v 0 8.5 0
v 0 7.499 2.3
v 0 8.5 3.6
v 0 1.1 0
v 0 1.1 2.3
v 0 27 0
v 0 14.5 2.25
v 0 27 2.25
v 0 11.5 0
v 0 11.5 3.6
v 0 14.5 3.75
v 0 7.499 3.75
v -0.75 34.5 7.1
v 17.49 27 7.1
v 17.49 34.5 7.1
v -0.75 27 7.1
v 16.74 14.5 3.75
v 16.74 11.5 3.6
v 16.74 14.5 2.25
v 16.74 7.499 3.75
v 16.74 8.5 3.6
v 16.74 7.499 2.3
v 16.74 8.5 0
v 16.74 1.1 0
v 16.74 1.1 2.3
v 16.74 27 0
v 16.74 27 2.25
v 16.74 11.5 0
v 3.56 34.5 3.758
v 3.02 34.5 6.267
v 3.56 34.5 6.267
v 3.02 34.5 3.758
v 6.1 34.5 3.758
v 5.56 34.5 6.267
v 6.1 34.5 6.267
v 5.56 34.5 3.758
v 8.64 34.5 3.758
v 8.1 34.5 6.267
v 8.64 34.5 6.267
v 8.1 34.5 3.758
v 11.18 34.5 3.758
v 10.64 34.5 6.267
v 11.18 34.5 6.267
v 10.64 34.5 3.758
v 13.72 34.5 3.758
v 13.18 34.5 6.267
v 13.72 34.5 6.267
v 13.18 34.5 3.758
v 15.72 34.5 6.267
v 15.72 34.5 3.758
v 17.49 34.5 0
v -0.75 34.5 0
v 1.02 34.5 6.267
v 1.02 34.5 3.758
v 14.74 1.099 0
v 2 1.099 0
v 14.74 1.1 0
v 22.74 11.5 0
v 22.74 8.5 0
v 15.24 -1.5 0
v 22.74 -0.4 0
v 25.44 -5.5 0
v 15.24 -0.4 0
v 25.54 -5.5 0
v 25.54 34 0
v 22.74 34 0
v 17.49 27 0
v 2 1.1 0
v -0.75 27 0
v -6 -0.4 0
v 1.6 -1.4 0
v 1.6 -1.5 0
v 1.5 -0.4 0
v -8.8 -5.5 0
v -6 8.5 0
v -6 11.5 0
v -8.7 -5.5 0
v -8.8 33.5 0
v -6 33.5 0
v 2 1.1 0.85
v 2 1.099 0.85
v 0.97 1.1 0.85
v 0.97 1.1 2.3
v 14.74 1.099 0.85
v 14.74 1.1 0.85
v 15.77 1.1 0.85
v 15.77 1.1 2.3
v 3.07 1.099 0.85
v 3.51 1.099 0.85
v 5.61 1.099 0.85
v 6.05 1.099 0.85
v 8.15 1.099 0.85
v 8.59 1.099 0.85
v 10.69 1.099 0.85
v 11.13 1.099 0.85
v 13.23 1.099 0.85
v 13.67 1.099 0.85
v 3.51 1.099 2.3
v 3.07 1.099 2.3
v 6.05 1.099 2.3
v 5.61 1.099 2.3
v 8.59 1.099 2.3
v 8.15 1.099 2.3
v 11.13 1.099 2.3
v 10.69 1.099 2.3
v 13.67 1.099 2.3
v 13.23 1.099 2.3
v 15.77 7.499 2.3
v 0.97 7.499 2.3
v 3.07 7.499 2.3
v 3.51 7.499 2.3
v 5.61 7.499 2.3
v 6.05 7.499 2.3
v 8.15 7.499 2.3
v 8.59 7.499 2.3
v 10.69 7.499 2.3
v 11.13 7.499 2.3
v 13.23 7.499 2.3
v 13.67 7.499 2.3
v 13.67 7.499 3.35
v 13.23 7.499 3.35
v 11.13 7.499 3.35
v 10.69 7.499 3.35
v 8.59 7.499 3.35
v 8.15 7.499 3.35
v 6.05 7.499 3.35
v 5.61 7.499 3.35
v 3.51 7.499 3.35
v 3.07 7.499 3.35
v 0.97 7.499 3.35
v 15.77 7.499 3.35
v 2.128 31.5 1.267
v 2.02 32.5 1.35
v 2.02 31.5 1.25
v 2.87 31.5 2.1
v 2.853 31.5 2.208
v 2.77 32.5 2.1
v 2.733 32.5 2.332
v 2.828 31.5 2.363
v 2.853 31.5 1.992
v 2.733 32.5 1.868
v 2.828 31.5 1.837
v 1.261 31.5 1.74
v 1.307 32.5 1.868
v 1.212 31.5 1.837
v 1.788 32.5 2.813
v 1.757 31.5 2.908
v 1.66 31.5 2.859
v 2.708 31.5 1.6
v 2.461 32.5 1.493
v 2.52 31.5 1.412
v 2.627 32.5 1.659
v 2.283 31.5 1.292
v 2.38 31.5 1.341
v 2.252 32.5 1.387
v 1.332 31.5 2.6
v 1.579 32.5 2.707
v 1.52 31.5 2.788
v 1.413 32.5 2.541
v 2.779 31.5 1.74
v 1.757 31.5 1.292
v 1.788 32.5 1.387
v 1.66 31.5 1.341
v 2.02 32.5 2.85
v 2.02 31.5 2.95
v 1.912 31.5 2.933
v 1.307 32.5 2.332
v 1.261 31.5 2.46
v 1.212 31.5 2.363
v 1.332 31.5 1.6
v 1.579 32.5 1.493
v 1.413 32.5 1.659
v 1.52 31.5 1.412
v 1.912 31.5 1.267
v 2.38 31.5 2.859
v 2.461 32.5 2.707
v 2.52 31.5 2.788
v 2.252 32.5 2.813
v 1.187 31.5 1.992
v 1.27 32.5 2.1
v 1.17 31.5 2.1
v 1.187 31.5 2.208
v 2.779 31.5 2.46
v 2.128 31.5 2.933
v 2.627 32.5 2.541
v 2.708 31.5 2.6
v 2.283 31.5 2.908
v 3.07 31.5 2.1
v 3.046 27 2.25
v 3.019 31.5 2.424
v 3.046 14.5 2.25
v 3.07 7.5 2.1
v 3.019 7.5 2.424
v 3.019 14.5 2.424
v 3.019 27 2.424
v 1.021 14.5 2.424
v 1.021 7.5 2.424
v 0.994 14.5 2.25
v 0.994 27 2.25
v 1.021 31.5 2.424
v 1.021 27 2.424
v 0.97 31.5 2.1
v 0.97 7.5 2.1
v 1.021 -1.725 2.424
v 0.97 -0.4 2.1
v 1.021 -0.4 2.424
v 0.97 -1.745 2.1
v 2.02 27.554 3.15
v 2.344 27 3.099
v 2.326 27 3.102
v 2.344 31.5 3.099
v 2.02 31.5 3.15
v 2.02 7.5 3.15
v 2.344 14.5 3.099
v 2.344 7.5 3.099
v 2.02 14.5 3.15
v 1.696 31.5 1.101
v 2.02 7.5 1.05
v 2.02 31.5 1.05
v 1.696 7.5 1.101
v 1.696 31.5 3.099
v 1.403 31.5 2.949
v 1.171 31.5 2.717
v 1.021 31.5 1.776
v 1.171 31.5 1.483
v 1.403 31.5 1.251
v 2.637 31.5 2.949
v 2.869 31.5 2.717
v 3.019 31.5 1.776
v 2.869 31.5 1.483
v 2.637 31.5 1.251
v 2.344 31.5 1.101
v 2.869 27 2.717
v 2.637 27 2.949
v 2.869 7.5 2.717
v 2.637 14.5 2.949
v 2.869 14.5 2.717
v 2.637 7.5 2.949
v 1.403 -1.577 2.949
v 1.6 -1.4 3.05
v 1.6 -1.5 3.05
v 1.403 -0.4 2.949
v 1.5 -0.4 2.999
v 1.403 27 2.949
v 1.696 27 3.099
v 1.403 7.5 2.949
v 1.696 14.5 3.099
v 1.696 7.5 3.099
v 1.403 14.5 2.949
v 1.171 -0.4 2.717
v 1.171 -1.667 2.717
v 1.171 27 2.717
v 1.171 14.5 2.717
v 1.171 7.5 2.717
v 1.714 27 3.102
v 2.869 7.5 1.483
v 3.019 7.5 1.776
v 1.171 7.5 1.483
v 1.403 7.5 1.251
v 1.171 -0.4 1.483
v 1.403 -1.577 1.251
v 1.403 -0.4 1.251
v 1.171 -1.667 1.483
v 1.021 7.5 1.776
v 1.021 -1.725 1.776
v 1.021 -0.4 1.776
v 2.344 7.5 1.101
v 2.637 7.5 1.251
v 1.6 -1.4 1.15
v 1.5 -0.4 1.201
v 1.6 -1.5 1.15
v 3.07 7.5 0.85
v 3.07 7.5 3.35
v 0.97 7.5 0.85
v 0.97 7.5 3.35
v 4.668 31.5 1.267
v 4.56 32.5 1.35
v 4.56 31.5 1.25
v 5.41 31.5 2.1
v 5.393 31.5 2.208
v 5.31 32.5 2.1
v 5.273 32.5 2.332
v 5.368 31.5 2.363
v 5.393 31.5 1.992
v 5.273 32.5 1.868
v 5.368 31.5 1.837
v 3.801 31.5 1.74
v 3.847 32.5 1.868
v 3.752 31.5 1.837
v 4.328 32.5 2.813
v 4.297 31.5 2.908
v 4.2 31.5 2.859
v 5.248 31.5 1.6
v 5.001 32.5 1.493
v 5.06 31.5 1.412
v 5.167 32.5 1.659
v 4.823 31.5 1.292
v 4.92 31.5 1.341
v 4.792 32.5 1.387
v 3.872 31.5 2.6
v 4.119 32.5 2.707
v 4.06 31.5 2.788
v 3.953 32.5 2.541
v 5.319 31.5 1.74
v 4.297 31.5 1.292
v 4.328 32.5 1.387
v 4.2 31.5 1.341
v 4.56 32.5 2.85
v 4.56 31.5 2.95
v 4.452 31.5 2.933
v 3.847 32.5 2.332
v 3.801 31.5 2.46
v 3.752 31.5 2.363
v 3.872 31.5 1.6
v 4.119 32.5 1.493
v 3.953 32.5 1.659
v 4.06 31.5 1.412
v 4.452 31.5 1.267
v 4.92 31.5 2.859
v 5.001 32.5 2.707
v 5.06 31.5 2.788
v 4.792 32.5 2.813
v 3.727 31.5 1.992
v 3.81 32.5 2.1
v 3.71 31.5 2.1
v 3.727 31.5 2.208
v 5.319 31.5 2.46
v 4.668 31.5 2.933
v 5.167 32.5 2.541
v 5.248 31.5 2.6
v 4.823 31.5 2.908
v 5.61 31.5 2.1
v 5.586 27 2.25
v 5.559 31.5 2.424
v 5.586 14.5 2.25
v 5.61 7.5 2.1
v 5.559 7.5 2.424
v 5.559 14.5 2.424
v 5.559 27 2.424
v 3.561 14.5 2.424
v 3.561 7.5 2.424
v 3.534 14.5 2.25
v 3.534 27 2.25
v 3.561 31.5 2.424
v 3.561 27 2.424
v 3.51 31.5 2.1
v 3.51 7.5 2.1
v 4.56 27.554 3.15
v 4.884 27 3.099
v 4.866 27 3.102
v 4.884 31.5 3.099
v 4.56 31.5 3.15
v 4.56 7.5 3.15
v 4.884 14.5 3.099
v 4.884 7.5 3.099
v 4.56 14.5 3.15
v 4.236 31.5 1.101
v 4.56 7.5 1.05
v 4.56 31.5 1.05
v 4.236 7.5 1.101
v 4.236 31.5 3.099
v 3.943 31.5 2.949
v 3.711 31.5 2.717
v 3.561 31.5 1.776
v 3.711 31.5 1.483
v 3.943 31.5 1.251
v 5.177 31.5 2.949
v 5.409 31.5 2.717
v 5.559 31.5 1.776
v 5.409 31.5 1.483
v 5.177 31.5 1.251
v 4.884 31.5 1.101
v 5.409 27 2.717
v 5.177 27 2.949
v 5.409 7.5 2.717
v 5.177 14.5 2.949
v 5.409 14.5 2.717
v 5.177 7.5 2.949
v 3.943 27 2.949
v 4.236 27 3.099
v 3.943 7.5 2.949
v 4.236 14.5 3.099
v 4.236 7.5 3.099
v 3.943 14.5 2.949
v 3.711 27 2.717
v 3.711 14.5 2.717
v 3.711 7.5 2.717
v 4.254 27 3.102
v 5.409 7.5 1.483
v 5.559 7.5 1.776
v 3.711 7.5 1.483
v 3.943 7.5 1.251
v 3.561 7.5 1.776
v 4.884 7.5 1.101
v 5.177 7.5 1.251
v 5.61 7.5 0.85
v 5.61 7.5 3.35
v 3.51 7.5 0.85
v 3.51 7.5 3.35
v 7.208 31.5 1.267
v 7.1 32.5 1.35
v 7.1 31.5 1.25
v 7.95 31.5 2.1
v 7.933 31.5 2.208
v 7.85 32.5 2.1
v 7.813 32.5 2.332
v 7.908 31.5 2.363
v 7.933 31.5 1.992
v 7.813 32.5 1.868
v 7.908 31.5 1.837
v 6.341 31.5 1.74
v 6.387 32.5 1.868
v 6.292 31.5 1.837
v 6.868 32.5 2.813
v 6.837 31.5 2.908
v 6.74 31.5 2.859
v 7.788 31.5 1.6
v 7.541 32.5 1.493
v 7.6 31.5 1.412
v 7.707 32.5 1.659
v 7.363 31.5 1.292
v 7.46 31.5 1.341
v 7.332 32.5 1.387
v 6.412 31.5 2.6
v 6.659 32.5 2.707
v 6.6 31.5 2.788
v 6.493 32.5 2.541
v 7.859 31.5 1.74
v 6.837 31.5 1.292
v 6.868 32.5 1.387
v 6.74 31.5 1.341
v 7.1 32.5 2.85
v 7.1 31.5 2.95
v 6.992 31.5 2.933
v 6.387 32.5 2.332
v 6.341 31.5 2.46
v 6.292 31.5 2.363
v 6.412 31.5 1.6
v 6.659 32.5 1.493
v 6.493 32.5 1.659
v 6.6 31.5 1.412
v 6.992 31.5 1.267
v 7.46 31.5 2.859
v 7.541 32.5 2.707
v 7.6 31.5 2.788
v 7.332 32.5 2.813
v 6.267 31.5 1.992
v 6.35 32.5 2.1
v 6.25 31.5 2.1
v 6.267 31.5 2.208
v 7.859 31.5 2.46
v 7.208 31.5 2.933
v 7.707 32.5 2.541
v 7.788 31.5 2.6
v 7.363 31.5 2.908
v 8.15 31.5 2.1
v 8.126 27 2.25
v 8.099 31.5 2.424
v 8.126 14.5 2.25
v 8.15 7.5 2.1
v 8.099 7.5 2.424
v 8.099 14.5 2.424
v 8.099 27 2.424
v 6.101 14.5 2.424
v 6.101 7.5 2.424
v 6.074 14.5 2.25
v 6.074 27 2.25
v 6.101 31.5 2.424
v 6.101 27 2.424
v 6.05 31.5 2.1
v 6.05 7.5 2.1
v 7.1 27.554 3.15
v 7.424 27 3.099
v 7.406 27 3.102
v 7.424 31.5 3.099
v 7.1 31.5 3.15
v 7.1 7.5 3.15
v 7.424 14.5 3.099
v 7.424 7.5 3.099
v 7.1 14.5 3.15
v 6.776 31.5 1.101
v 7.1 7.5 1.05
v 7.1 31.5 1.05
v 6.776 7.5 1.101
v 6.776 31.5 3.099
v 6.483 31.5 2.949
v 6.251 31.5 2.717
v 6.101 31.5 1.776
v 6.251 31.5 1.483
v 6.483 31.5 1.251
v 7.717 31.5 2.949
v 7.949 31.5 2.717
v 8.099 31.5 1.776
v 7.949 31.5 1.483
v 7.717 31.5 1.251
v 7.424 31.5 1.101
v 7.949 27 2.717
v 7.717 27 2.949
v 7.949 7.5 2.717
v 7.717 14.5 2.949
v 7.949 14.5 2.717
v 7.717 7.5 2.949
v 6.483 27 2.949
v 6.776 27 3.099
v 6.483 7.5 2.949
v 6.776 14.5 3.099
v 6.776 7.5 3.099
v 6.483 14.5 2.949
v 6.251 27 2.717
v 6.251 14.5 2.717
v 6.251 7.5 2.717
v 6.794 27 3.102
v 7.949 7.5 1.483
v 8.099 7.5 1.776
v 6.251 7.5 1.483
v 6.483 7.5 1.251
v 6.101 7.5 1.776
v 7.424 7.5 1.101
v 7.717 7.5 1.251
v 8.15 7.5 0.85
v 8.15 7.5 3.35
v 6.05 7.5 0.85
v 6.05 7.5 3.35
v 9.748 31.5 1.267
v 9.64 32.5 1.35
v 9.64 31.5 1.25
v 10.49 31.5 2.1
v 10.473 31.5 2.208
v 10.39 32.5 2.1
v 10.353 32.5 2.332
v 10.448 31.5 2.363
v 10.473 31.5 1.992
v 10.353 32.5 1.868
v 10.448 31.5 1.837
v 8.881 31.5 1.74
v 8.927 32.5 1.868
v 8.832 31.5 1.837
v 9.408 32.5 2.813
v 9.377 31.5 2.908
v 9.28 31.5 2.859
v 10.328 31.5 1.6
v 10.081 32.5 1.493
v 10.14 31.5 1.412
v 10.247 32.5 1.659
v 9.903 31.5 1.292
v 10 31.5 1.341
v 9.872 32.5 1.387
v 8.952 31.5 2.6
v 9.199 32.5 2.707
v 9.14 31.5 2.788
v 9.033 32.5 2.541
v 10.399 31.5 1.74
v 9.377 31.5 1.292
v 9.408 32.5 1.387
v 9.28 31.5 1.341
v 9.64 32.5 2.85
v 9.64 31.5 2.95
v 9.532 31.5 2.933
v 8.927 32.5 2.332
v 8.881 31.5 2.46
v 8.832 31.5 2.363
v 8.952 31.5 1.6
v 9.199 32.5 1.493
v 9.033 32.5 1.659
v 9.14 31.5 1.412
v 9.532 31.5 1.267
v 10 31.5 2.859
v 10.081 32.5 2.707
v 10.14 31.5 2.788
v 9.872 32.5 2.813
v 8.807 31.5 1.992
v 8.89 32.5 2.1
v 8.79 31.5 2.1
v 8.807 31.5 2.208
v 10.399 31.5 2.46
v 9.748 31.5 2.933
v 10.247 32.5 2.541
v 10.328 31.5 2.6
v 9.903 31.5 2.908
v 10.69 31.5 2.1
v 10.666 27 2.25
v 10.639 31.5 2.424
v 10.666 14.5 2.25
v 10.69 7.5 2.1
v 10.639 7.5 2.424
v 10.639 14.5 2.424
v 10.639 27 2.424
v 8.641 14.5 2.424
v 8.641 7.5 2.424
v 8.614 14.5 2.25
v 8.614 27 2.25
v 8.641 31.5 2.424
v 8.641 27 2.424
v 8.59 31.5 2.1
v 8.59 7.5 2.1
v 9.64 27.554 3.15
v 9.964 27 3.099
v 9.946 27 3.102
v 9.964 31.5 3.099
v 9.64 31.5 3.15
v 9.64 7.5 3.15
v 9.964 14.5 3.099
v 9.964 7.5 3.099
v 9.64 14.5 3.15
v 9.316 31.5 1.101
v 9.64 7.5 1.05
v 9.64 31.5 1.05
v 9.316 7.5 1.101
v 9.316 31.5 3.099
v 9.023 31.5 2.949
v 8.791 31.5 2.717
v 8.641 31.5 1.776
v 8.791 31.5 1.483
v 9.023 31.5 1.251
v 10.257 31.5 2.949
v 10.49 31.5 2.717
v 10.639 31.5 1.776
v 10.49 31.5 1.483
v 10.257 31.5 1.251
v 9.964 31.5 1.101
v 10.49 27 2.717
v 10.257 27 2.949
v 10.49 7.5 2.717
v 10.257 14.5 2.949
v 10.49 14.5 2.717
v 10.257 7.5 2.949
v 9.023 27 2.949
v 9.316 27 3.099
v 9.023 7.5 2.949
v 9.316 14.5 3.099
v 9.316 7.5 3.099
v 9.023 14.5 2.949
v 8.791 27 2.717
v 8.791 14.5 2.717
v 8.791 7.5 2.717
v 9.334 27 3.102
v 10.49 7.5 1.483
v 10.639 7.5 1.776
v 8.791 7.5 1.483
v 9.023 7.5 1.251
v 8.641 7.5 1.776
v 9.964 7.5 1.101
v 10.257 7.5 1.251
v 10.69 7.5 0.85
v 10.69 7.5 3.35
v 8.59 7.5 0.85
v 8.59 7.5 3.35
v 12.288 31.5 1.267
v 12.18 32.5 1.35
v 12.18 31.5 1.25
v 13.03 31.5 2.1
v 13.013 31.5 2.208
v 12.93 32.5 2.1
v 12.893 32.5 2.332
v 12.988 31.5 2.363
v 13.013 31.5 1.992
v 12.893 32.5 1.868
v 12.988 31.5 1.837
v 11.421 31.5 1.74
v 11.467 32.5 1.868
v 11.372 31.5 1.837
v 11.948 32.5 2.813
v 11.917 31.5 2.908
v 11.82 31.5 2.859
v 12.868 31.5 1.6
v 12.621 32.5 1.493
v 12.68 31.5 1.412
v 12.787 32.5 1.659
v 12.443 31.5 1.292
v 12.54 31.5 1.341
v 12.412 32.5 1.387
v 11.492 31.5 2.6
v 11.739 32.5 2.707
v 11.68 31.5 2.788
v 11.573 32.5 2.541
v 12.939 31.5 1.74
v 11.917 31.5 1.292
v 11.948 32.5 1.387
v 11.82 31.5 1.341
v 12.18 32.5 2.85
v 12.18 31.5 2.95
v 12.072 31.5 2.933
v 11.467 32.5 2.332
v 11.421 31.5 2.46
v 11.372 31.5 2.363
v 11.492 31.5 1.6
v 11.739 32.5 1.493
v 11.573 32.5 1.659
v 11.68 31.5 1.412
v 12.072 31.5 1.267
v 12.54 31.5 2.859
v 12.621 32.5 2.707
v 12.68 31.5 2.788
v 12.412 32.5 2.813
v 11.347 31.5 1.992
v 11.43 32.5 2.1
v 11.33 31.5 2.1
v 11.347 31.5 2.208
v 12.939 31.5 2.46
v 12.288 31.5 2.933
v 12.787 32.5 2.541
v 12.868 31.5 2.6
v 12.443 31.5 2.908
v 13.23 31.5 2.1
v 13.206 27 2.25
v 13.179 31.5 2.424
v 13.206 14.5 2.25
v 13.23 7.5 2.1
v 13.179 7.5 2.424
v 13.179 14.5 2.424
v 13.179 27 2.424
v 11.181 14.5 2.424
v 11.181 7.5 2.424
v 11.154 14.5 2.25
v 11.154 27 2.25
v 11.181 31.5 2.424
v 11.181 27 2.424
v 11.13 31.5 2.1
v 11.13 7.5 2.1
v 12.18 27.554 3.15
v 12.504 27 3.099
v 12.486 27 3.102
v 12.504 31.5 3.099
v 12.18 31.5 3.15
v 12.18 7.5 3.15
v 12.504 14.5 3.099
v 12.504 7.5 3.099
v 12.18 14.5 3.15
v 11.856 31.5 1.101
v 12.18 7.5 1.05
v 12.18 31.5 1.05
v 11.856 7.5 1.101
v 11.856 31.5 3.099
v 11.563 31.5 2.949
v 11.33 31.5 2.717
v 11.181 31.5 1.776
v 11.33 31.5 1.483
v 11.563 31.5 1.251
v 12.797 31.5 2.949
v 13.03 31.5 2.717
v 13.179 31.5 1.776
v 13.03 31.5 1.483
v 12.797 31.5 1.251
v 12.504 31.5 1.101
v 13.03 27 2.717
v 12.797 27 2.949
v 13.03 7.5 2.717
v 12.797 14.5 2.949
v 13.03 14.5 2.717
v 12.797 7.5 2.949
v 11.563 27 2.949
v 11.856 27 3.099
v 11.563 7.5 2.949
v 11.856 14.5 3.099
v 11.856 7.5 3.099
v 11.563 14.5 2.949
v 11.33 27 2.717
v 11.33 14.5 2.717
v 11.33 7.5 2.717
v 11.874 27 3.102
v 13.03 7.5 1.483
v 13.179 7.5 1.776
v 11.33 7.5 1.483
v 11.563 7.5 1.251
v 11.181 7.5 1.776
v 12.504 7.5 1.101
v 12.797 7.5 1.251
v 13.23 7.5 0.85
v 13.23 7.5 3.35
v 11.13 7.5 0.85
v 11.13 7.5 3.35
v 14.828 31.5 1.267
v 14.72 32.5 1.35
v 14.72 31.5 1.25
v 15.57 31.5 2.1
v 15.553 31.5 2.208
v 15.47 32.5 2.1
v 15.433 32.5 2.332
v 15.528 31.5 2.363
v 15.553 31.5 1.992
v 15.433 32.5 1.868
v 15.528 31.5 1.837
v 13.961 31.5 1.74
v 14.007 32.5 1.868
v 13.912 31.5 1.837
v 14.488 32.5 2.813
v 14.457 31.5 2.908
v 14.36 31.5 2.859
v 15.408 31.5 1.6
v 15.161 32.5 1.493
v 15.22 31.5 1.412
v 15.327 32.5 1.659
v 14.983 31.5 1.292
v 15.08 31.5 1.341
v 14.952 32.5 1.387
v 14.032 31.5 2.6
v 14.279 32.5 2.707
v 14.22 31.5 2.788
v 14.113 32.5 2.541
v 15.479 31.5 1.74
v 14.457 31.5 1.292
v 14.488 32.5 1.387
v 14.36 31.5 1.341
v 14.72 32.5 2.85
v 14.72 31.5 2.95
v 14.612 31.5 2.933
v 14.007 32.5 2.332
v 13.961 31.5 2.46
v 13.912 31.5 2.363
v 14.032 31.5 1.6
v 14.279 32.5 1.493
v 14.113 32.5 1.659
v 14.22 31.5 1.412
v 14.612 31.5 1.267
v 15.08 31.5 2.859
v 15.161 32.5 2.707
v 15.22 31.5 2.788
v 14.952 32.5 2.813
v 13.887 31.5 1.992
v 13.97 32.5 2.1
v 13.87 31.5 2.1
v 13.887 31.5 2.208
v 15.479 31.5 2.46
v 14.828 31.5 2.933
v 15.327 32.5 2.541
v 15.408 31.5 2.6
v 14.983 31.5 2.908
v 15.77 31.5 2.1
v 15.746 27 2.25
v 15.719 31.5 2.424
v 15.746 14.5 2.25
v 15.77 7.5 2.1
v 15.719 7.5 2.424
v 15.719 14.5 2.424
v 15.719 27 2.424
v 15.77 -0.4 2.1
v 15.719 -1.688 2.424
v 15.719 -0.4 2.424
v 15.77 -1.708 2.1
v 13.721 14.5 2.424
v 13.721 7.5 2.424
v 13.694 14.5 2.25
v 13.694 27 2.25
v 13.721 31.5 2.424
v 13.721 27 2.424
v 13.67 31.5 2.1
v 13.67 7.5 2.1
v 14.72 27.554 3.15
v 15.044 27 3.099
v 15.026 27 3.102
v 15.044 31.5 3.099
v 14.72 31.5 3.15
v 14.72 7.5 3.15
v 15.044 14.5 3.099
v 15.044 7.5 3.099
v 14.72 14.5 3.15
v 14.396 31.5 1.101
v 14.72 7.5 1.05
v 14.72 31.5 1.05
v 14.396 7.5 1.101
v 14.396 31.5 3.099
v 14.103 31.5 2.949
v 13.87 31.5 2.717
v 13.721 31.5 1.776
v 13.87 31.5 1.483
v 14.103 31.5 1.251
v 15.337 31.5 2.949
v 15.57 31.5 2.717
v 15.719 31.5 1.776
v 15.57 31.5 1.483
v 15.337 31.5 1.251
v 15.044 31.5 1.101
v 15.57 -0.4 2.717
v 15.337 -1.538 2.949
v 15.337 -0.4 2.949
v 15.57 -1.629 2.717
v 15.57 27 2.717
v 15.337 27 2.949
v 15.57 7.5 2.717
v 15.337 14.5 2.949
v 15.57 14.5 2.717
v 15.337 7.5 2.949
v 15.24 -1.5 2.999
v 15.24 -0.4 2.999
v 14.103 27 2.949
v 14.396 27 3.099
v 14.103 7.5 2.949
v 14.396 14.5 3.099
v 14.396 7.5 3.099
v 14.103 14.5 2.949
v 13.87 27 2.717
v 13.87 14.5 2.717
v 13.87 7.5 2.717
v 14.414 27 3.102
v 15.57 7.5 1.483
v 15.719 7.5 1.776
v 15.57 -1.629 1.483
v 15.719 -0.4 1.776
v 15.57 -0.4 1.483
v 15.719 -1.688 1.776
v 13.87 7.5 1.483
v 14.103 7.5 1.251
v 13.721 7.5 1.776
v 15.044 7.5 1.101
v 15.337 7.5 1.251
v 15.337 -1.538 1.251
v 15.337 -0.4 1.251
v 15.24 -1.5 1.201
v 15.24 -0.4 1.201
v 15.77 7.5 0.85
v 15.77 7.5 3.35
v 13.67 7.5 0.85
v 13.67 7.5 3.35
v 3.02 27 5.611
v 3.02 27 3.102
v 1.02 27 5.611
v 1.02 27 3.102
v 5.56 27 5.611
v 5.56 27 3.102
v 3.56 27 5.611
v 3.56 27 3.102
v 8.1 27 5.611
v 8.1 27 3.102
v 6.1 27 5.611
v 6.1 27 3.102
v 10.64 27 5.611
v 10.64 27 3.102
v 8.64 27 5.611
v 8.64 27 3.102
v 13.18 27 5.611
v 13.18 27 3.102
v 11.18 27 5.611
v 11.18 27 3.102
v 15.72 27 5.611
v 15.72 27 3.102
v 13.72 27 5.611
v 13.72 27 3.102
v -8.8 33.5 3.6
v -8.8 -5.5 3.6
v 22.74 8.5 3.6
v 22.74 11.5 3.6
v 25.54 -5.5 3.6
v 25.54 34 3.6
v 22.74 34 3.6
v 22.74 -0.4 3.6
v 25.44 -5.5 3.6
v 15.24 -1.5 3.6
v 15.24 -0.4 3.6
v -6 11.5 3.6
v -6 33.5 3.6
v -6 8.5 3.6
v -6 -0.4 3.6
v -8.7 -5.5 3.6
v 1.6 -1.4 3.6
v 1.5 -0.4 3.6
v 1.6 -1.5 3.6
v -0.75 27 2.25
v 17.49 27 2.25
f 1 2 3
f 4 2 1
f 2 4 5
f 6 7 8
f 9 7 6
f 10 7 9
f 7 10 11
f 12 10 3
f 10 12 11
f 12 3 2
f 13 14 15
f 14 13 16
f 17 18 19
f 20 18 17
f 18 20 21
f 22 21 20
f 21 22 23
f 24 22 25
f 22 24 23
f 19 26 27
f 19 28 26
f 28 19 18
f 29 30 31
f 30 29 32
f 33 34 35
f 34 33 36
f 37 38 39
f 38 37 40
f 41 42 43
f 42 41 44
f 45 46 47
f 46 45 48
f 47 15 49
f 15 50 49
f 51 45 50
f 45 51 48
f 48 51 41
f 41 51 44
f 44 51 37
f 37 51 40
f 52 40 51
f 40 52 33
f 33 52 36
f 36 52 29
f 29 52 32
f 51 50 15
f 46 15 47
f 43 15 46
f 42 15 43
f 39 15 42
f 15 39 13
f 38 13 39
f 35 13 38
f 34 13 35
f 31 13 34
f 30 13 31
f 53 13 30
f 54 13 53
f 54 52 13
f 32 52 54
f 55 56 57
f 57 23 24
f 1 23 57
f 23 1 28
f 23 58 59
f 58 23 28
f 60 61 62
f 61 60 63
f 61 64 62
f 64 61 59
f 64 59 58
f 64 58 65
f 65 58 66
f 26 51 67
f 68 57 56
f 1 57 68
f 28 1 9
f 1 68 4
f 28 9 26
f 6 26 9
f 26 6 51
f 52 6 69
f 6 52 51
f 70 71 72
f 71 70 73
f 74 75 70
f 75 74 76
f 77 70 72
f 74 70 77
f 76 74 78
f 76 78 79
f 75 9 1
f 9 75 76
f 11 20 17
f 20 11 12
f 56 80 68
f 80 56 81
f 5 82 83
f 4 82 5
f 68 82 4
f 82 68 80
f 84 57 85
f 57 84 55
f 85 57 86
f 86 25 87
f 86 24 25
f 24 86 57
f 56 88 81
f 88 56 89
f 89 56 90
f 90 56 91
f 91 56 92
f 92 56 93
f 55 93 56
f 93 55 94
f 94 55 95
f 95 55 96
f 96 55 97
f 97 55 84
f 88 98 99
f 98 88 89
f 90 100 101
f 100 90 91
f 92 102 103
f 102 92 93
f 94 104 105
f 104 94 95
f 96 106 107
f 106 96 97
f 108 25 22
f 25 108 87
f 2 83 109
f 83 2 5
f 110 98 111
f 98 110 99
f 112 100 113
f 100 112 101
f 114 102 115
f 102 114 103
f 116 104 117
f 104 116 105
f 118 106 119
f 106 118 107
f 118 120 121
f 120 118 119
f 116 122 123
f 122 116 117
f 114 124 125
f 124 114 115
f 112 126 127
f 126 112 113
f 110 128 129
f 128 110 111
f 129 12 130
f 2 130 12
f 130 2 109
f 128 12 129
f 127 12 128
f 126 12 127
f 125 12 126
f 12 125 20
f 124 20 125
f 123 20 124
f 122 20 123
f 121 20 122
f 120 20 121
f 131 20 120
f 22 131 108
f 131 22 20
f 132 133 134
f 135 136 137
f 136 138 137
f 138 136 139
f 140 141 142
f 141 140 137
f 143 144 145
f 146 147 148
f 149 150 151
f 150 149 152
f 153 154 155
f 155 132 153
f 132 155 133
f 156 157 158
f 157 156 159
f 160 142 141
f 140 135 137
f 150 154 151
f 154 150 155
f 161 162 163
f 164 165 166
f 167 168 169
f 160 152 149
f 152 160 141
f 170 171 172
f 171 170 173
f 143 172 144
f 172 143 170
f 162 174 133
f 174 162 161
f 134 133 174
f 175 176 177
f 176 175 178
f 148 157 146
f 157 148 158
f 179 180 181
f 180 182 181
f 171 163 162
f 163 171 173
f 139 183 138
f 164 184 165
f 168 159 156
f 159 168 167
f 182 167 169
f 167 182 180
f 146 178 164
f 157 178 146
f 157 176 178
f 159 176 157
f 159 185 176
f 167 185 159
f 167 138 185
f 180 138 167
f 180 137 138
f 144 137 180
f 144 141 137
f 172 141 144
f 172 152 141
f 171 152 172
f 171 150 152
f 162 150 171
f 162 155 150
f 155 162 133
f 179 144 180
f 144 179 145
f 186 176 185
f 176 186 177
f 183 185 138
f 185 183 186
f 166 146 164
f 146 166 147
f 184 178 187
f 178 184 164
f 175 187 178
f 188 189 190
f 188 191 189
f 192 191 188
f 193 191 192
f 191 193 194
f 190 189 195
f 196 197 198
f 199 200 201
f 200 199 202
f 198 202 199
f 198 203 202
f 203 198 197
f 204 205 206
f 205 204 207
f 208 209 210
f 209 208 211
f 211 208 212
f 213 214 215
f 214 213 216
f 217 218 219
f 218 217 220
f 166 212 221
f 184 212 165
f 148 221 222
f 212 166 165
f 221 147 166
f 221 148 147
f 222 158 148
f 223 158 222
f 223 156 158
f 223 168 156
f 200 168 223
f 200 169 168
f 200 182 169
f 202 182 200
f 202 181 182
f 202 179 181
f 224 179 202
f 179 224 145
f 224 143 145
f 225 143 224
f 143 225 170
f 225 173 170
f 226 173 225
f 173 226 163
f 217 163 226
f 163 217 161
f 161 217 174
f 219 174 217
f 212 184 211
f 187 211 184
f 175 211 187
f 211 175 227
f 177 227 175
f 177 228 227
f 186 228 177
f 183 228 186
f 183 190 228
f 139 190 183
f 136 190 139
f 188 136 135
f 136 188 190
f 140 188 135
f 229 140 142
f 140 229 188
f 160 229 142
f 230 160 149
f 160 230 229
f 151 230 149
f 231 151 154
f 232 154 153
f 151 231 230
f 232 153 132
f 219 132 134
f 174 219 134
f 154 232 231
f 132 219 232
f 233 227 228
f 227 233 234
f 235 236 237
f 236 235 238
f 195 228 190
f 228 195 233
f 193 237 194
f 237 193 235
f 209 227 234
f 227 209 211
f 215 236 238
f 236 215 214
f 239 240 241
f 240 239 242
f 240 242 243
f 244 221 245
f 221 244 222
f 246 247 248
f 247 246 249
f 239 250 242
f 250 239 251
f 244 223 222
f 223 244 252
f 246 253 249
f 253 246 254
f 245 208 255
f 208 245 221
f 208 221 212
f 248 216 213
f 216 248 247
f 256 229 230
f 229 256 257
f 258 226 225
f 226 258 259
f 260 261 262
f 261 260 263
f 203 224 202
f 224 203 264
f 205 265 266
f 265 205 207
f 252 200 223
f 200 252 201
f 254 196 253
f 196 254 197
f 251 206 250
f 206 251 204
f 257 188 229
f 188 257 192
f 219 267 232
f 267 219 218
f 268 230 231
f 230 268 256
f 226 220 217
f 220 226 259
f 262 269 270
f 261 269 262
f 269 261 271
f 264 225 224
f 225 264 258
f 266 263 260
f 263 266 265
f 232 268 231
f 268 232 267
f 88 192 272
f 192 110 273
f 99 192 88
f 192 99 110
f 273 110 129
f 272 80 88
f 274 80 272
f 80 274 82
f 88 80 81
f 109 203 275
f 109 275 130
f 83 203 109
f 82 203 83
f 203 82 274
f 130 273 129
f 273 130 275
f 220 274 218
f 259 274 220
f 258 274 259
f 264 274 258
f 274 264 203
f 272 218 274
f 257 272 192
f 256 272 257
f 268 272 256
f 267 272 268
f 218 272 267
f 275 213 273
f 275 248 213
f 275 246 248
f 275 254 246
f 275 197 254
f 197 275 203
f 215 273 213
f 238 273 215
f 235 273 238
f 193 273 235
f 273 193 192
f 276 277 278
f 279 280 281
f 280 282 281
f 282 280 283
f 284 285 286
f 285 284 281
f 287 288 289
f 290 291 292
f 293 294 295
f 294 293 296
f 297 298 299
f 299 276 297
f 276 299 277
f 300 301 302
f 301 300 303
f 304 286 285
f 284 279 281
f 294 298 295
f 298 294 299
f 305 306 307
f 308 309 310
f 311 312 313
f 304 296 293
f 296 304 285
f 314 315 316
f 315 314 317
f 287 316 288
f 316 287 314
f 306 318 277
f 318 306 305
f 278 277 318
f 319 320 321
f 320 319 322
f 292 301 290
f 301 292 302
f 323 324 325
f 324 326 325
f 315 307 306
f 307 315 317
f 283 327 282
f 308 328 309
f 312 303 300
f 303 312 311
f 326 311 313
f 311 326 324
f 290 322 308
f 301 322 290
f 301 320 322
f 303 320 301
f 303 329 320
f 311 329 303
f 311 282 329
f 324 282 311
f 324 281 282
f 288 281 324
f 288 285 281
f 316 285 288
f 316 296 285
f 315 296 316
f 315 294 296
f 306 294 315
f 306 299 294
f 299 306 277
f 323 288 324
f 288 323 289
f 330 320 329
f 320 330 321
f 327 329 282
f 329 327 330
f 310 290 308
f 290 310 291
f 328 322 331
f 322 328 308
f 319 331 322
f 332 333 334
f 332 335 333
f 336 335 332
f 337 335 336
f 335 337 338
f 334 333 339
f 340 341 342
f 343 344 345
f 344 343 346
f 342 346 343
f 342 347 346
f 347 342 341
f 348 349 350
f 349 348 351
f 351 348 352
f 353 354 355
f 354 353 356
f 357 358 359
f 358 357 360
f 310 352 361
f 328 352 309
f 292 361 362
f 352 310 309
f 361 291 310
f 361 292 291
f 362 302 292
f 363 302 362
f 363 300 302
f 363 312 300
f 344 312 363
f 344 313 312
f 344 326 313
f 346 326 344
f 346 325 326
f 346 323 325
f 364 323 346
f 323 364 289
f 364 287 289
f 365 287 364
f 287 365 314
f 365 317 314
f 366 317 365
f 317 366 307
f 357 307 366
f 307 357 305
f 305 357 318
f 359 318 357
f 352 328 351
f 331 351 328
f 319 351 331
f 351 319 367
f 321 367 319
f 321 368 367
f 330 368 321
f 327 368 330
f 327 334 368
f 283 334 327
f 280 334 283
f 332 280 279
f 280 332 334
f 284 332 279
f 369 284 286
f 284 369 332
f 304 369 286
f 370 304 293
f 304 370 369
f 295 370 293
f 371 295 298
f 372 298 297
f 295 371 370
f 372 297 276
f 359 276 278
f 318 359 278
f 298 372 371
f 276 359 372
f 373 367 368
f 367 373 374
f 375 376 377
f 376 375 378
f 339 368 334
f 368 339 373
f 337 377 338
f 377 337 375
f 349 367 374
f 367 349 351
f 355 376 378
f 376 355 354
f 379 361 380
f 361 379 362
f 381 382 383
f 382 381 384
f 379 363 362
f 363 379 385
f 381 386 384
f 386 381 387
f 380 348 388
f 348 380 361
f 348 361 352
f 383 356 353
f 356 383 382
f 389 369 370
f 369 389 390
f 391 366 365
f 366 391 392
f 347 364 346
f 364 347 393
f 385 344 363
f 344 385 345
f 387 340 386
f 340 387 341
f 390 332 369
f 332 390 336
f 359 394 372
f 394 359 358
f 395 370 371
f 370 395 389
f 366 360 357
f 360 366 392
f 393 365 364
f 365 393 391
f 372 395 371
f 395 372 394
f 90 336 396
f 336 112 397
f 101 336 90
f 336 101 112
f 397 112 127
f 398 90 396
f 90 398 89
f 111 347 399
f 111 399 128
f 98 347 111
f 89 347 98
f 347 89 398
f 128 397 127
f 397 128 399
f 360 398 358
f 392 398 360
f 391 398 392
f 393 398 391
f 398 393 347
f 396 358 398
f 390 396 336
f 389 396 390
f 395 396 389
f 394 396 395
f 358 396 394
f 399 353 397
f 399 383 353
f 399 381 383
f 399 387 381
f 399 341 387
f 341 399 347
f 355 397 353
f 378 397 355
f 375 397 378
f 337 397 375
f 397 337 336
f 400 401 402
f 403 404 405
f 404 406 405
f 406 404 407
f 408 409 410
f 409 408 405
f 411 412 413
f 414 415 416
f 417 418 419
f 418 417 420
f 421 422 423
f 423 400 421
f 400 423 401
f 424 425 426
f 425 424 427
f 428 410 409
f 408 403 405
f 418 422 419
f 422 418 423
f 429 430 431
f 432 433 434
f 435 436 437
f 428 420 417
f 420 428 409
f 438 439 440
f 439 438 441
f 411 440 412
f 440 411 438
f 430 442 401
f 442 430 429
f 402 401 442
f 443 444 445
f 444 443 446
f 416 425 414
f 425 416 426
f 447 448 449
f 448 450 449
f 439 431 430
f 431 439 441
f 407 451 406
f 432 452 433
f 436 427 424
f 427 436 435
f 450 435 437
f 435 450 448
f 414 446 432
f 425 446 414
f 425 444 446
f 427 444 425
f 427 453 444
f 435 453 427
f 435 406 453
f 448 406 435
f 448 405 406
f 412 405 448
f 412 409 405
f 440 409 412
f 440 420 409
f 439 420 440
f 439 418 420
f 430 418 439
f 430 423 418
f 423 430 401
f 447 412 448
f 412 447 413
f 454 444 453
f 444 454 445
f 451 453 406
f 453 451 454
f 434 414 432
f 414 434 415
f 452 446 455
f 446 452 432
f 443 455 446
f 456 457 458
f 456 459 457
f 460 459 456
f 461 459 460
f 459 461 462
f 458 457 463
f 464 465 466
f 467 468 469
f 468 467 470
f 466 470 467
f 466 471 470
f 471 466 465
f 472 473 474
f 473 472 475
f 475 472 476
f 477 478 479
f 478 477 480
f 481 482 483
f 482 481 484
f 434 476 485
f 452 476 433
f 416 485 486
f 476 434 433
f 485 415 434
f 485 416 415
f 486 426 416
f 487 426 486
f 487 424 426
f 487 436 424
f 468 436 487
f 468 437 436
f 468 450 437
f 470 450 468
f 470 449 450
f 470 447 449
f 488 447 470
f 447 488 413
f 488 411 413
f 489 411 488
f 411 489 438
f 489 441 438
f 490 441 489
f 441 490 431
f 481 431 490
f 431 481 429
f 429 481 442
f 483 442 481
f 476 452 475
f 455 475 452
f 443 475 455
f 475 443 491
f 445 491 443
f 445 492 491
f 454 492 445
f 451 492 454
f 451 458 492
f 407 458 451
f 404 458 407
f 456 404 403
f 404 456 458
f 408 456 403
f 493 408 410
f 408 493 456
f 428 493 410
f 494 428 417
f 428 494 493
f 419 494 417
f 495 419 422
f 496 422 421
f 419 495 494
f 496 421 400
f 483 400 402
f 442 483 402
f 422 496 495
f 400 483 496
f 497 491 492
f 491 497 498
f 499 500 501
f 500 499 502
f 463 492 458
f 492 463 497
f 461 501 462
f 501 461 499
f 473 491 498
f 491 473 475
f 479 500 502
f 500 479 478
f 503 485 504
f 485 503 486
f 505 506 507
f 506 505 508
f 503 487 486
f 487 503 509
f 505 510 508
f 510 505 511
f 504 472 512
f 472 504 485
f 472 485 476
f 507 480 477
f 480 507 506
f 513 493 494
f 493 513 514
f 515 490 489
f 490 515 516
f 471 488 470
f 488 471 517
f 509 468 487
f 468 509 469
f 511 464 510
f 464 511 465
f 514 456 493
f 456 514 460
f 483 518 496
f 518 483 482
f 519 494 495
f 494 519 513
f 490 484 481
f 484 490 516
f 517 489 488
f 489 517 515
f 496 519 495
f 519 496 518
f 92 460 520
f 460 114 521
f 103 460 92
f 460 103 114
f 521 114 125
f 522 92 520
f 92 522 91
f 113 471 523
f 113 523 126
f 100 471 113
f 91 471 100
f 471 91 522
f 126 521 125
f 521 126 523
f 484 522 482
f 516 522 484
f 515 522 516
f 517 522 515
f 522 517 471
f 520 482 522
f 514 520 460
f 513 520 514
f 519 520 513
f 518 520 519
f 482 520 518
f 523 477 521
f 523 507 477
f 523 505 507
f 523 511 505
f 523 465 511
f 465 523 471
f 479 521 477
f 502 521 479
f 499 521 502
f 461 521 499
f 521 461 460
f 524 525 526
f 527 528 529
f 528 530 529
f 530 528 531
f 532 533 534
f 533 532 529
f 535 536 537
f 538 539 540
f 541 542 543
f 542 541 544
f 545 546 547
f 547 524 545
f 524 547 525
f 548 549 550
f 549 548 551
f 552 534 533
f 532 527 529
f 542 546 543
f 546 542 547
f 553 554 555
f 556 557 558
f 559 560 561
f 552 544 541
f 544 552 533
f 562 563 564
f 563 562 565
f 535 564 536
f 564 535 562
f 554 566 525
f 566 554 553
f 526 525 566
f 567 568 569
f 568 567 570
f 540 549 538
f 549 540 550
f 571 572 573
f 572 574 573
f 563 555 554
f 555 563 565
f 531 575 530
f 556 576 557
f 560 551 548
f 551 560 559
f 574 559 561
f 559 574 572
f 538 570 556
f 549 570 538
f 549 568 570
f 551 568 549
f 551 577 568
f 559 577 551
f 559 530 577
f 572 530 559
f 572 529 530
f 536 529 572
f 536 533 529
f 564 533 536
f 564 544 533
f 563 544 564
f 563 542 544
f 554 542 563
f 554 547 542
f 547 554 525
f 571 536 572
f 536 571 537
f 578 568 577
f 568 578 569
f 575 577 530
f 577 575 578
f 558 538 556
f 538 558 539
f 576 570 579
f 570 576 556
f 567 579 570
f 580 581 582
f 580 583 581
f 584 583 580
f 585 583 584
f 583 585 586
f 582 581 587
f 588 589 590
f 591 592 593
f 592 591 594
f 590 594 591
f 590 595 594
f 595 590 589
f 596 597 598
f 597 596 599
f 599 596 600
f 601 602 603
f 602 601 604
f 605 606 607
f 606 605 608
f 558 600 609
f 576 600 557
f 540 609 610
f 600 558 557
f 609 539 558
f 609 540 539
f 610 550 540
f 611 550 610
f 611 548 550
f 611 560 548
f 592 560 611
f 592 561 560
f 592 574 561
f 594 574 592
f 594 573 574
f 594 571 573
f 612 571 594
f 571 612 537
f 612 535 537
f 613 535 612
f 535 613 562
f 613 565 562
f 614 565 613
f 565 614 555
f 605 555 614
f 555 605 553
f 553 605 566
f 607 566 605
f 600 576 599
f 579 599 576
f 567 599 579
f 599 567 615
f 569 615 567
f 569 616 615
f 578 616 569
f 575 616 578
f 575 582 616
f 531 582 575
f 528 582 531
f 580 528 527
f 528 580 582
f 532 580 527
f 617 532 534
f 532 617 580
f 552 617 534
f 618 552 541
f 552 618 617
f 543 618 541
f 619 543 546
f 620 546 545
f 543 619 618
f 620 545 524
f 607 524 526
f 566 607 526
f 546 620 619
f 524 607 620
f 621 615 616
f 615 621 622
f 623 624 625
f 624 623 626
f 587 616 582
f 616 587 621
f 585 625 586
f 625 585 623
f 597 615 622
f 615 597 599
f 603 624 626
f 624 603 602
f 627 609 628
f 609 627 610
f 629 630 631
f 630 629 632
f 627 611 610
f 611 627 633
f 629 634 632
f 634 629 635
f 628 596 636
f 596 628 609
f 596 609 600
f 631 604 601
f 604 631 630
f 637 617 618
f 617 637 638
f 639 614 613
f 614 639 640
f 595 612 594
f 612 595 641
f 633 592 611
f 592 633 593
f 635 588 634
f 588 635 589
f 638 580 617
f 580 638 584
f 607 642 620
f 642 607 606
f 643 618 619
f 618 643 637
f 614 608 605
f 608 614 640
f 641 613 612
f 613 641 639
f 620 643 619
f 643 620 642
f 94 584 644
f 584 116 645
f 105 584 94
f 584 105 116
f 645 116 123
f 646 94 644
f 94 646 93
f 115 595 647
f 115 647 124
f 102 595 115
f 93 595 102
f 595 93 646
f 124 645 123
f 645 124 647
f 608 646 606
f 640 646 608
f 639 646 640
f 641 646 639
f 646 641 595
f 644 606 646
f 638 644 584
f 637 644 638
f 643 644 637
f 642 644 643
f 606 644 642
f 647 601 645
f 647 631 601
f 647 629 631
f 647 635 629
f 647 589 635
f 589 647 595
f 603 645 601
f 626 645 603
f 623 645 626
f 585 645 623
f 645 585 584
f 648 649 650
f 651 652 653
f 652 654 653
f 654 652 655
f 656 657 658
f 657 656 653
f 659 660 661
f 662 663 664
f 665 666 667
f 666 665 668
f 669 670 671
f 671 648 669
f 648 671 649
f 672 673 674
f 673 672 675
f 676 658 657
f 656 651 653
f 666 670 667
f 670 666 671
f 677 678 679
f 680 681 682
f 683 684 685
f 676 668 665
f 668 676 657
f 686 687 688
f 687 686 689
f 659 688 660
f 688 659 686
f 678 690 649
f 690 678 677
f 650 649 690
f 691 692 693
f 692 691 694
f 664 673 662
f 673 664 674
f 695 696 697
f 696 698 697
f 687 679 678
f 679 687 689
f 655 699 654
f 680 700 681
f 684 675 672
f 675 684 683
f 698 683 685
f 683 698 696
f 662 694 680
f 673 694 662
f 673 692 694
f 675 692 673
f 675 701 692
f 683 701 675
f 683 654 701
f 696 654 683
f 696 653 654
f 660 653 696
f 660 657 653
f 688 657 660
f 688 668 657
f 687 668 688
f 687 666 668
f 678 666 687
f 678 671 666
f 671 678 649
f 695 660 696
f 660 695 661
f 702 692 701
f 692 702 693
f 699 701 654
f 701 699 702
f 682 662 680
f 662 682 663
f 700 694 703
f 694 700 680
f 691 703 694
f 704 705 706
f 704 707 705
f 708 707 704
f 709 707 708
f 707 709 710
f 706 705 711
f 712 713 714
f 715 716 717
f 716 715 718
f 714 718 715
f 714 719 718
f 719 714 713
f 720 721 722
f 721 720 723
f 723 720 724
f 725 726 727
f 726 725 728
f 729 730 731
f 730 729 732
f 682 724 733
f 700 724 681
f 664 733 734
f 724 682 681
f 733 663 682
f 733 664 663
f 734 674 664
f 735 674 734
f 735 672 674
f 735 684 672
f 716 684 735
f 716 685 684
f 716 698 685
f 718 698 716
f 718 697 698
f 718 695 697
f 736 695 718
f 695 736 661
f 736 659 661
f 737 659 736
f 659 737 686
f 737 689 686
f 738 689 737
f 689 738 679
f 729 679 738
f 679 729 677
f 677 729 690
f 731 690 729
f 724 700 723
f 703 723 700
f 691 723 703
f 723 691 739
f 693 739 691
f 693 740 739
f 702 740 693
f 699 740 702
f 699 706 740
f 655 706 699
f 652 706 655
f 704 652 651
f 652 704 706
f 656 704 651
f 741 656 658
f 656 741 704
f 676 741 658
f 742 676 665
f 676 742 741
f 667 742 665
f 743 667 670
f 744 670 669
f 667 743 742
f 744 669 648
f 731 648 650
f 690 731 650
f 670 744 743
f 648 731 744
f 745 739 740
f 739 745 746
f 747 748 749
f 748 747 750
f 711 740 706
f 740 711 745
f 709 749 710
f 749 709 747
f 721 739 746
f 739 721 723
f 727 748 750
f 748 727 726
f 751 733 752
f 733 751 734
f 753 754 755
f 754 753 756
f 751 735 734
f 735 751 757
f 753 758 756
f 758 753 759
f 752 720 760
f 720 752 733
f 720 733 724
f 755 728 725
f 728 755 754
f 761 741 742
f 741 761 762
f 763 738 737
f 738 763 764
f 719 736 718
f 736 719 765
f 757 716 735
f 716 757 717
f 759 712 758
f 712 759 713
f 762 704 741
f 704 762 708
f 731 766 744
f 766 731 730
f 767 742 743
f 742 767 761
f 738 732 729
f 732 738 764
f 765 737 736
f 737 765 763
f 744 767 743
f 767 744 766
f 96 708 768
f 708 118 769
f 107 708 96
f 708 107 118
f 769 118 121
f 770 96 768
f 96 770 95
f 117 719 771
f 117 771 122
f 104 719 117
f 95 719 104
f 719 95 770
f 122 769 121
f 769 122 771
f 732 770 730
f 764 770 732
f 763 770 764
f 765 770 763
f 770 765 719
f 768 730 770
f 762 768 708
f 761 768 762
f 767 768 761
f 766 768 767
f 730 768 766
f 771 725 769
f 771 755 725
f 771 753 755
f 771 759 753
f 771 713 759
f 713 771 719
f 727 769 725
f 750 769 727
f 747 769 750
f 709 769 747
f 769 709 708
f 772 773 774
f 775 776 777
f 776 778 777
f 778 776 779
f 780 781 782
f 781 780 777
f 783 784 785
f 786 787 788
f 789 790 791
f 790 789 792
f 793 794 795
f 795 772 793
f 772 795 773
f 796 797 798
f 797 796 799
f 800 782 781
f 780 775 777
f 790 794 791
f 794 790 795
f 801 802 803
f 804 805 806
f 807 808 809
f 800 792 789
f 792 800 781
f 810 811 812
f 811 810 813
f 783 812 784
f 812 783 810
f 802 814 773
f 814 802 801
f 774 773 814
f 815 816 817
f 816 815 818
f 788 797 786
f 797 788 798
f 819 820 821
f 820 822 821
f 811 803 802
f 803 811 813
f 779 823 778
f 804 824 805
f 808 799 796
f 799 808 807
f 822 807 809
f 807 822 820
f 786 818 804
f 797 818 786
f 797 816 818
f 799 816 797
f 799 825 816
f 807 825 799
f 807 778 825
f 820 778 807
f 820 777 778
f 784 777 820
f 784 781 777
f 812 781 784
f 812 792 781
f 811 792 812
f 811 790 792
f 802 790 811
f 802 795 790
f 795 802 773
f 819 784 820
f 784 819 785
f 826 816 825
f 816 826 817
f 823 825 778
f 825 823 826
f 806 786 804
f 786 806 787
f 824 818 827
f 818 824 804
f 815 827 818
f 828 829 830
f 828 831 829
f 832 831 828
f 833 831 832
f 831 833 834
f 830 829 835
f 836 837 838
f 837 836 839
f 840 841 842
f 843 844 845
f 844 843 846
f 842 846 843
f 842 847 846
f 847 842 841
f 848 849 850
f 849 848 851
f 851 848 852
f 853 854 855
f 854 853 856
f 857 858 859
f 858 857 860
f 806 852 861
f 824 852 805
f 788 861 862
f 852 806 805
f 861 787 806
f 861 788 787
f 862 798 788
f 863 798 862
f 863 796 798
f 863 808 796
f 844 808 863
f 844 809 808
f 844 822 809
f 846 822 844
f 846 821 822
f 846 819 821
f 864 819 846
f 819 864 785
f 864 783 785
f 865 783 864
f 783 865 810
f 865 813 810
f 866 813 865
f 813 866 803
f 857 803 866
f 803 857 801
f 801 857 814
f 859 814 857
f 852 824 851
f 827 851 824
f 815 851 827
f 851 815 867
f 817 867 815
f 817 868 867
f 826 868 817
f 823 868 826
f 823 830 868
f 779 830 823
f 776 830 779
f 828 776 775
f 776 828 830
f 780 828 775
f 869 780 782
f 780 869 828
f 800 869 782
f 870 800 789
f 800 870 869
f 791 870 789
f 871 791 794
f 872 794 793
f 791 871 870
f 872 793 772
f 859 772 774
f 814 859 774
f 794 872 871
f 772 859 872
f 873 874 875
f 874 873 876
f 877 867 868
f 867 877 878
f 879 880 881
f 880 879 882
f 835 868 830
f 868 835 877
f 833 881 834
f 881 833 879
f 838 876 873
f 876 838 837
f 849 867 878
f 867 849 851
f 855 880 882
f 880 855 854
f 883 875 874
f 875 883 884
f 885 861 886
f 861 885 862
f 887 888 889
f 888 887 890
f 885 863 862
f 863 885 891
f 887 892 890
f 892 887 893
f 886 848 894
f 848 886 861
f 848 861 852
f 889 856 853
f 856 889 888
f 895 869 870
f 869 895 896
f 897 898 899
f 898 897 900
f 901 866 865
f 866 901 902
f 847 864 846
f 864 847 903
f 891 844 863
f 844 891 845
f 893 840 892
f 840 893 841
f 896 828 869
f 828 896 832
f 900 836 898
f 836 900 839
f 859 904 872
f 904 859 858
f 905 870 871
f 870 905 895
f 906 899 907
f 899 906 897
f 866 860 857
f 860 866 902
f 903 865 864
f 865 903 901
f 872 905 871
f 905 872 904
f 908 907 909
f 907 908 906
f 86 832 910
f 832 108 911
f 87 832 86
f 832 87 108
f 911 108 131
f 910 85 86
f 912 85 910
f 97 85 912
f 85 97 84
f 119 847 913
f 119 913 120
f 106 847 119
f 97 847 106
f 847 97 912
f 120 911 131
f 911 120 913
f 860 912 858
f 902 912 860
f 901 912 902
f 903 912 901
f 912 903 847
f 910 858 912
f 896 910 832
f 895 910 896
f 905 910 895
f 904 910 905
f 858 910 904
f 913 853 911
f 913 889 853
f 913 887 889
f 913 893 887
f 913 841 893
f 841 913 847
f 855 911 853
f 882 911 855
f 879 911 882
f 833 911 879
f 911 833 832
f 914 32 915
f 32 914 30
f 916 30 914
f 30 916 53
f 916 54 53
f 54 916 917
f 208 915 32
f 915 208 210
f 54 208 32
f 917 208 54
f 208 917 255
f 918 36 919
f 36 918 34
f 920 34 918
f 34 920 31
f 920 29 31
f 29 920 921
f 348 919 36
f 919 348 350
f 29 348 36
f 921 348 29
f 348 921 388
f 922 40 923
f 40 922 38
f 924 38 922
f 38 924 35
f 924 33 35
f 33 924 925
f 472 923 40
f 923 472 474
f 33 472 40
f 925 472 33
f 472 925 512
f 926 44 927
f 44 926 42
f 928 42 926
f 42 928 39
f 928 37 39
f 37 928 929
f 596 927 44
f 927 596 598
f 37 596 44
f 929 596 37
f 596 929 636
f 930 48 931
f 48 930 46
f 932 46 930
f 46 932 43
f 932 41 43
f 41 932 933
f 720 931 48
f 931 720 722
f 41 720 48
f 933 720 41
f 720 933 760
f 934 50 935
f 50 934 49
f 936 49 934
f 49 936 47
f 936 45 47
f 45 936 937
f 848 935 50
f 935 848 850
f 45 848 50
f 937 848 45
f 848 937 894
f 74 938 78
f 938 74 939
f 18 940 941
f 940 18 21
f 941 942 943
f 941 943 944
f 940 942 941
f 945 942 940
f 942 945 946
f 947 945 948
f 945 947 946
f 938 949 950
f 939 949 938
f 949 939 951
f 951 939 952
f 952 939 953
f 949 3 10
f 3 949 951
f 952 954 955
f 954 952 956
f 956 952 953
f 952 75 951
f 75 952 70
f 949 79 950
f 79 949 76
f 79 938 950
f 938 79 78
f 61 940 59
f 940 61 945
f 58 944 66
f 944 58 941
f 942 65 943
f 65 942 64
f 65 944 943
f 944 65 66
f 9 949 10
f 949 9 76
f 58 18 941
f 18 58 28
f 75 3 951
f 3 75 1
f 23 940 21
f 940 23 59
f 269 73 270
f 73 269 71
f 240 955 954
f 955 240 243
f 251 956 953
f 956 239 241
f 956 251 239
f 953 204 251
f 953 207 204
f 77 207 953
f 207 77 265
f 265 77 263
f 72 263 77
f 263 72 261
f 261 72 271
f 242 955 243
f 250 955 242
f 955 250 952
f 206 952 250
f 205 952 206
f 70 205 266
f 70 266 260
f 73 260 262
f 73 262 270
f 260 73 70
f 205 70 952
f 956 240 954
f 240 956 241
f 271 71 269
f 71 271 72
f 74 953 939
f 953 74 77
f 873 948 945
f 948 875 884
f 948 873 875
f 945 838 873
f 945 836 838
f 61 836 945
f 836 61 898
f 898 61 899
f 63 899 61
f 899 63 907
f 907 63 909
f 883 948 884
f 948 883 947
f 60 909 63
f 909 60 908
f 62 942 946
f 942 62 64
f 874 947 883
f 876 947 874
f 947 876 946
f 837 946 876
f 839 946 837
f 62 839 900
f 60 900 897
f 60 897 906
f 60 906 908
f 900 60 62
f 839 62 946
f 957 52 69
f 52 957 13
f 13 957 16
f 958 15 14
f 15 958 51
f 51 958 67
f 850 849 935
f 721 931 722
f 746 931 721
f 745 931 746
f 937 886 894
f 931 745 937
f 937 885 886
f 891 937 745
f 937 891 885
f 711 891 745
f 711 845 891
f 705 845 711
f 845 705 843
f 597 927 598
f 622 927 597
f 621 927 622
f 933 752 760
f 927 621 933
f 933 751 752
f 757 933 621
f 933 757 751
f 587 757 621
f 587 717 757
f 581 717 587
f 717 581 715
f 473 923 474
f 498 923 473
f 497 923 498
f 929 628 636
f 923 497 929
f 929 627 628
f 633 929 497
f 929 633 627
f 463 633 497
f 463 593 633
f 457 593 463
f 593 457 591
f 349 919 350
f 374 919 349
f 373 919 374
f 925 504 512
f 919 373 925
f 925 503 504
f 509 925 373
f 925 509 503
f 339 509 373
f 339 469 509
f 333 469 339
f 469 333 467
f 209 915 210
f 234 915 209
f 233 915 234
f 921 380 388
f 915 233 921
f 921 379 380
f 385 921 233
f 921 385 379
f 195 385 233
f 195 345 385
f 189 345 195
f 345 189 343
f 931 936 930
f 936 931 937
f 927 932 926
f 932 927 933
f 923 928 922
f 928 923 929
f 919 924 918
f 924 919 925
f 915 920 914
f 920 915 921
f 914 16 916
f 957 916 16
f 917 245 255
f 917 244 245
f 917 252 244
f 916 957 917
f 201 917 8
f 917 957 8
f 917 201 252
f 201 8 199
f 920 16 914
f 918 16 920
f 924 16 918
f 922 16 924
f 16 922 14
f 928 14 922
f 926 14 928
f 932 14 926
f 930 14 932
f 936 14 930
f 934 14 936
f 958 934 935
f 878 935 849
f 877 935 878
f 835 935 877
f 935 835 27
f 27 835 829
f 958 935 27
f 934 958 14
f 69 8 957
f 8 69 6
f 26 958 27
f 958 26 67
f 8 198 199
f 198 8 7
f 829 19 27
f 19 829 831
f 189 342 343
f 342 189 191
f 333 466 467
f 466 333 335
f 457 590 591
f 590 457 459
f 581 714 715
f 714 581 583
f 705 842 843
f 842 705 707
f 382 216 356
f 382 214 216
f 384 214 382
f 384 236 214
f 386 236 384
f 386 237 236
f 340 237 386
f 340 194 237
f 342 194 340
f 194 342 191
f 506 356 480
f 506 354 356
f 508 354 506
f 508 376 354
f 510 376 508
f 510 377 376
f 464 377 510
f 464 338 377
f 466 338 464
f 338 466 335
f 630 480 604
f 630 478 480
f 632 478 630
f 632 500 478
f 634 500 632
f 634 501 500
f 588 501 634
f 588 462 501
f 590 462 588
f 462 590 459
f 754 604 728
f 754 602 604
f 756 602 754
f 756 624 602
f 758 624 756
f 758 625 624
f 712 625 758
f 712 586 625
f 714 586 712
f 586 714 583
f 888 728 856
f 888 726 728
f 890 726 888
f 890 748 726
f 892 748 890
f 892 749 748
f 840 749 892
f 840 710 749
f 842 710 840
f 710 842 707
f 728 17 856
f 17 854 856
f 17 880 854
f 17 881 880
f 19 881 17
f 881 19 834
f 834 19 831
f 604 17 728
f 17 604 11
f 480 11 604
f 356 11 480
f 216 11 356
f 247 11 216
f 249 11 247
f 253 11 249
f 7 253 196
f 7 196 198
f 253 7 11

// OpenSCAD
$fn=20;
/*
  Edge Header Programmer Clip Via Probes (e.g. OpenLog Clone)
  Author: Brian Khuu 2019
  
  This is originally designed for connecting to OpenLog Clones
  
  I used P100-E2 probes for this
  
  Note: The purple openlog clone Programmer Port essentally has [GND, RST, SCK, M0, M1, Vin]

*/

/* [Feature Selection] */
PCB_probe_clip_grip_enable = true;
PCB_probe_align_enable = false;

/* [Properties] */
// Designed For Printer Nozzle
printer_nozzle=0.4;

// Base Thickness
base_thickness = 0.2;

/* probe pin spec */
ppext = 8; // Probe extention length
ppbody = 25; // Body of the probe
ppdia = 1.5; // probe pin diameter

ppdiatol = 0.6; // tolerance for fitting
ppinset = 0.5;

ppdiaoutset = ppext-ppinset; // How far to space out to allow for side fits

/* PCB Pin Spacing and count */

// Pin Count
ppc = 6;

// Pin Spacing
pps = 2.54;

// PCB Thickness
pcb_thickness = 1.1; // 1mm Open Log Clone

// PCB Probe Offset (Bottom)
pcb_probe_offset = 1.3;

// PCB Probe Offset (Side)
pcb_probe_side_offset = 0;

/* Clip */
clip_tab = 5; // Clip tab to more easily open the clip

/* pcb */
pcb_h = 2; // pcb thickness

/* calc */
boxx = ppc * pps + ppdia;
boxy = 2 + ppbody + ppdiaoutset;
boxh = base_thickness+pcb_probe_offset+ppdiatol+5;

supported_pcb_size = pcb_probe_side_offset*2+boxx;

module probe_pin_req()
{
  inset=0;
  translate([0,0,-ppbody])
  union()
  {
    translate([0,0,0])
      cylinder(r1=(ppdia)/2,r2=(ppdia+ppdiatol)/2, h=3);
    translate([0,0,1])
      cylinder(r=(ppdia+ppdiatol)/2, h=ppbody+ppext+1);
    %color("gold") cylinder(r=ppdia/2, h=ppbody);
    %color("silver") translate([0,0,ppbody])
      cylinder(r=ppdia/2, r2=0, h=ppext);
  }
}

module openlog_clone_programmer_jig_clip()
{
  grip_gap=6;
  grip_thickness=printer_nozzle*7;
  grip_height=base_thickness+pcb_probe_offset+ppdiatol+ppdia;

  if (PCB_probe_clip_grip_enable)
  {
    translate([-grip_gap-grip_thickness,-1,0])
      cube([grip_thickness,boxy,grip_height]);
    translate([grip_gap+boxx,-0.5,0])
      cube([grip_thickness,boxy,grip_height]);
  }

  difference()
  {
    translate([-grip_gap-grip_thickness,0,0])
      cube([boxx+grip_gap*2+grip_thickness*2,boxy/3,grip_height]);
    translate([-grip_gap,-3,-1])
      cube([boxx+grip_gap*2,boxy/3,grip_height+2]);
  }
  translate([-(grip_thickness*2+grip_gap*2)/2,-0.5,0])
    hull()
    {
      translate([0,0,0])
        cube([(grip_thickness+grip_gap+ppdia-pcb_probe_side_offset),0.1,grip_height]);
      translate([0,-5,0])
        cube([0.1,0.1,grip_height]);
      translate([(grip_thickness+grip_gap+ppdia-pcb_probe_side_offset),-1,0])
        cube([0.1,0.1,grip_height]);
    }
  translate([(grip_thickness*2+grip_gap*2)/2+boxx,-0.5,0])
    hull()
    {
      translate([-(grip_thickness+grip_gap+ppdia-pcb_probe_side_offset),0,0])
        cube([(grip_thickness+grip_gap+ppdia-pcb_probe_side_offset),0.1,grip_height]);
      translate([-0.1,-5,0])
        cube([0.1,0.1,grip_height]);
      translate([-(grip_thickness+grip_gap+ppdia-pcb_probe_side_offset),-1,0])
        cube([0.1,0.1,grip_height]);
    }
}

module openlog_clone_programmer_jig()
{
  difference()
  {  
    /* Bulk */
    union()
    {
      difference()
      {
        cube([boxx,boxy,boxh]);
        translate([-5, 0, base_thickness+pcb_probe_offset+ppdia*1.5]) 
          cube([ppc * pps+10,ppbody, 5]);
        translate([0,0,-1])
          cube([4,pcb_thickness*2,boxh],center=true);
        translate([boxx,0,-1])
          cube([4,pcb_thickness*2,boxh],center=true);
      }
      translate([-(ppdia)/2, ppdiaoutset+7+ppbody/2, 0]) 
        cube([boxx+(ppdia),boxy-(ppdiaoutset+7+ppbody/2), boxh]);
      openlog_clone_programmer_jig_clip();
    }

    /* Probe Access Cutout */
    translate([-5, ppdiaoutset+7, base_thickness+pcb_probe_offset+ppdia/2]) 
      cube([ppc * pps+10,ppbody/2, boxh]);
      
    /* Module Cutout */
    translate([0, -0.001, 0]) 
      union()
      {
        if(PCB_probe_align_enable)
        {
          translate([0, 0,base_thickness]) 
            cube([boxx,pcb_thickness, boxh]);
        }
        else
        {
          translate([0, 0,-base_thickness/2]) 
            cube([boxx,pcb_thickness, boxh]);
        }
        
        translate([0, 0, base_thickness+ppdia+ppdiatol]) 
          cube([boxx,ppdiaoutset, boxh]);
      }
      
    /* Probe */
    for ( xi = [0 : 1 : ppc-1] )
    {
      translate([ppdia/2+pps/2+pps*xi, 0, base_thickness])
      union()
      {
        translate([0, ppdiaoutset, pcb_probe_offset+ppdiatol])
          rotate([90,0,0])
          probe_pin_req();
        
        translate([0, ppdiaoutset, pcb_probe_offset+ppdiatol])
          rotate([180,0,0])
            translate([0, (ppdiaoutset)/2, 0])
              cube([ppdia+ppdiatol,(ppdiaoutset),ppdia+1], center=true);
      }
    }
    
    /* Wire Guide (To solder onto the probe) */
    for ( xii = [0 : 1 : ppc-1] )
    {
      translate([ppdia/2+pps/2+pps*xii, boxy+1, base_thickness+ppdia+1.5+pcb_probe_offset+ppdiatol])
        rotate([95,0,0])
          cube([2,2.5,20],center=true);
    }
  }
}

openlog_clone_programmer_jig();

/* Visualisation */
%translate([boxx/2,pcb_thickness/2,base_thickness+pcb_probe_offset])
  cube([supported_pcb_size,pcb_thickness,1], center=true);
echo("##Supported PCB Length:",supported_pcb_size);
